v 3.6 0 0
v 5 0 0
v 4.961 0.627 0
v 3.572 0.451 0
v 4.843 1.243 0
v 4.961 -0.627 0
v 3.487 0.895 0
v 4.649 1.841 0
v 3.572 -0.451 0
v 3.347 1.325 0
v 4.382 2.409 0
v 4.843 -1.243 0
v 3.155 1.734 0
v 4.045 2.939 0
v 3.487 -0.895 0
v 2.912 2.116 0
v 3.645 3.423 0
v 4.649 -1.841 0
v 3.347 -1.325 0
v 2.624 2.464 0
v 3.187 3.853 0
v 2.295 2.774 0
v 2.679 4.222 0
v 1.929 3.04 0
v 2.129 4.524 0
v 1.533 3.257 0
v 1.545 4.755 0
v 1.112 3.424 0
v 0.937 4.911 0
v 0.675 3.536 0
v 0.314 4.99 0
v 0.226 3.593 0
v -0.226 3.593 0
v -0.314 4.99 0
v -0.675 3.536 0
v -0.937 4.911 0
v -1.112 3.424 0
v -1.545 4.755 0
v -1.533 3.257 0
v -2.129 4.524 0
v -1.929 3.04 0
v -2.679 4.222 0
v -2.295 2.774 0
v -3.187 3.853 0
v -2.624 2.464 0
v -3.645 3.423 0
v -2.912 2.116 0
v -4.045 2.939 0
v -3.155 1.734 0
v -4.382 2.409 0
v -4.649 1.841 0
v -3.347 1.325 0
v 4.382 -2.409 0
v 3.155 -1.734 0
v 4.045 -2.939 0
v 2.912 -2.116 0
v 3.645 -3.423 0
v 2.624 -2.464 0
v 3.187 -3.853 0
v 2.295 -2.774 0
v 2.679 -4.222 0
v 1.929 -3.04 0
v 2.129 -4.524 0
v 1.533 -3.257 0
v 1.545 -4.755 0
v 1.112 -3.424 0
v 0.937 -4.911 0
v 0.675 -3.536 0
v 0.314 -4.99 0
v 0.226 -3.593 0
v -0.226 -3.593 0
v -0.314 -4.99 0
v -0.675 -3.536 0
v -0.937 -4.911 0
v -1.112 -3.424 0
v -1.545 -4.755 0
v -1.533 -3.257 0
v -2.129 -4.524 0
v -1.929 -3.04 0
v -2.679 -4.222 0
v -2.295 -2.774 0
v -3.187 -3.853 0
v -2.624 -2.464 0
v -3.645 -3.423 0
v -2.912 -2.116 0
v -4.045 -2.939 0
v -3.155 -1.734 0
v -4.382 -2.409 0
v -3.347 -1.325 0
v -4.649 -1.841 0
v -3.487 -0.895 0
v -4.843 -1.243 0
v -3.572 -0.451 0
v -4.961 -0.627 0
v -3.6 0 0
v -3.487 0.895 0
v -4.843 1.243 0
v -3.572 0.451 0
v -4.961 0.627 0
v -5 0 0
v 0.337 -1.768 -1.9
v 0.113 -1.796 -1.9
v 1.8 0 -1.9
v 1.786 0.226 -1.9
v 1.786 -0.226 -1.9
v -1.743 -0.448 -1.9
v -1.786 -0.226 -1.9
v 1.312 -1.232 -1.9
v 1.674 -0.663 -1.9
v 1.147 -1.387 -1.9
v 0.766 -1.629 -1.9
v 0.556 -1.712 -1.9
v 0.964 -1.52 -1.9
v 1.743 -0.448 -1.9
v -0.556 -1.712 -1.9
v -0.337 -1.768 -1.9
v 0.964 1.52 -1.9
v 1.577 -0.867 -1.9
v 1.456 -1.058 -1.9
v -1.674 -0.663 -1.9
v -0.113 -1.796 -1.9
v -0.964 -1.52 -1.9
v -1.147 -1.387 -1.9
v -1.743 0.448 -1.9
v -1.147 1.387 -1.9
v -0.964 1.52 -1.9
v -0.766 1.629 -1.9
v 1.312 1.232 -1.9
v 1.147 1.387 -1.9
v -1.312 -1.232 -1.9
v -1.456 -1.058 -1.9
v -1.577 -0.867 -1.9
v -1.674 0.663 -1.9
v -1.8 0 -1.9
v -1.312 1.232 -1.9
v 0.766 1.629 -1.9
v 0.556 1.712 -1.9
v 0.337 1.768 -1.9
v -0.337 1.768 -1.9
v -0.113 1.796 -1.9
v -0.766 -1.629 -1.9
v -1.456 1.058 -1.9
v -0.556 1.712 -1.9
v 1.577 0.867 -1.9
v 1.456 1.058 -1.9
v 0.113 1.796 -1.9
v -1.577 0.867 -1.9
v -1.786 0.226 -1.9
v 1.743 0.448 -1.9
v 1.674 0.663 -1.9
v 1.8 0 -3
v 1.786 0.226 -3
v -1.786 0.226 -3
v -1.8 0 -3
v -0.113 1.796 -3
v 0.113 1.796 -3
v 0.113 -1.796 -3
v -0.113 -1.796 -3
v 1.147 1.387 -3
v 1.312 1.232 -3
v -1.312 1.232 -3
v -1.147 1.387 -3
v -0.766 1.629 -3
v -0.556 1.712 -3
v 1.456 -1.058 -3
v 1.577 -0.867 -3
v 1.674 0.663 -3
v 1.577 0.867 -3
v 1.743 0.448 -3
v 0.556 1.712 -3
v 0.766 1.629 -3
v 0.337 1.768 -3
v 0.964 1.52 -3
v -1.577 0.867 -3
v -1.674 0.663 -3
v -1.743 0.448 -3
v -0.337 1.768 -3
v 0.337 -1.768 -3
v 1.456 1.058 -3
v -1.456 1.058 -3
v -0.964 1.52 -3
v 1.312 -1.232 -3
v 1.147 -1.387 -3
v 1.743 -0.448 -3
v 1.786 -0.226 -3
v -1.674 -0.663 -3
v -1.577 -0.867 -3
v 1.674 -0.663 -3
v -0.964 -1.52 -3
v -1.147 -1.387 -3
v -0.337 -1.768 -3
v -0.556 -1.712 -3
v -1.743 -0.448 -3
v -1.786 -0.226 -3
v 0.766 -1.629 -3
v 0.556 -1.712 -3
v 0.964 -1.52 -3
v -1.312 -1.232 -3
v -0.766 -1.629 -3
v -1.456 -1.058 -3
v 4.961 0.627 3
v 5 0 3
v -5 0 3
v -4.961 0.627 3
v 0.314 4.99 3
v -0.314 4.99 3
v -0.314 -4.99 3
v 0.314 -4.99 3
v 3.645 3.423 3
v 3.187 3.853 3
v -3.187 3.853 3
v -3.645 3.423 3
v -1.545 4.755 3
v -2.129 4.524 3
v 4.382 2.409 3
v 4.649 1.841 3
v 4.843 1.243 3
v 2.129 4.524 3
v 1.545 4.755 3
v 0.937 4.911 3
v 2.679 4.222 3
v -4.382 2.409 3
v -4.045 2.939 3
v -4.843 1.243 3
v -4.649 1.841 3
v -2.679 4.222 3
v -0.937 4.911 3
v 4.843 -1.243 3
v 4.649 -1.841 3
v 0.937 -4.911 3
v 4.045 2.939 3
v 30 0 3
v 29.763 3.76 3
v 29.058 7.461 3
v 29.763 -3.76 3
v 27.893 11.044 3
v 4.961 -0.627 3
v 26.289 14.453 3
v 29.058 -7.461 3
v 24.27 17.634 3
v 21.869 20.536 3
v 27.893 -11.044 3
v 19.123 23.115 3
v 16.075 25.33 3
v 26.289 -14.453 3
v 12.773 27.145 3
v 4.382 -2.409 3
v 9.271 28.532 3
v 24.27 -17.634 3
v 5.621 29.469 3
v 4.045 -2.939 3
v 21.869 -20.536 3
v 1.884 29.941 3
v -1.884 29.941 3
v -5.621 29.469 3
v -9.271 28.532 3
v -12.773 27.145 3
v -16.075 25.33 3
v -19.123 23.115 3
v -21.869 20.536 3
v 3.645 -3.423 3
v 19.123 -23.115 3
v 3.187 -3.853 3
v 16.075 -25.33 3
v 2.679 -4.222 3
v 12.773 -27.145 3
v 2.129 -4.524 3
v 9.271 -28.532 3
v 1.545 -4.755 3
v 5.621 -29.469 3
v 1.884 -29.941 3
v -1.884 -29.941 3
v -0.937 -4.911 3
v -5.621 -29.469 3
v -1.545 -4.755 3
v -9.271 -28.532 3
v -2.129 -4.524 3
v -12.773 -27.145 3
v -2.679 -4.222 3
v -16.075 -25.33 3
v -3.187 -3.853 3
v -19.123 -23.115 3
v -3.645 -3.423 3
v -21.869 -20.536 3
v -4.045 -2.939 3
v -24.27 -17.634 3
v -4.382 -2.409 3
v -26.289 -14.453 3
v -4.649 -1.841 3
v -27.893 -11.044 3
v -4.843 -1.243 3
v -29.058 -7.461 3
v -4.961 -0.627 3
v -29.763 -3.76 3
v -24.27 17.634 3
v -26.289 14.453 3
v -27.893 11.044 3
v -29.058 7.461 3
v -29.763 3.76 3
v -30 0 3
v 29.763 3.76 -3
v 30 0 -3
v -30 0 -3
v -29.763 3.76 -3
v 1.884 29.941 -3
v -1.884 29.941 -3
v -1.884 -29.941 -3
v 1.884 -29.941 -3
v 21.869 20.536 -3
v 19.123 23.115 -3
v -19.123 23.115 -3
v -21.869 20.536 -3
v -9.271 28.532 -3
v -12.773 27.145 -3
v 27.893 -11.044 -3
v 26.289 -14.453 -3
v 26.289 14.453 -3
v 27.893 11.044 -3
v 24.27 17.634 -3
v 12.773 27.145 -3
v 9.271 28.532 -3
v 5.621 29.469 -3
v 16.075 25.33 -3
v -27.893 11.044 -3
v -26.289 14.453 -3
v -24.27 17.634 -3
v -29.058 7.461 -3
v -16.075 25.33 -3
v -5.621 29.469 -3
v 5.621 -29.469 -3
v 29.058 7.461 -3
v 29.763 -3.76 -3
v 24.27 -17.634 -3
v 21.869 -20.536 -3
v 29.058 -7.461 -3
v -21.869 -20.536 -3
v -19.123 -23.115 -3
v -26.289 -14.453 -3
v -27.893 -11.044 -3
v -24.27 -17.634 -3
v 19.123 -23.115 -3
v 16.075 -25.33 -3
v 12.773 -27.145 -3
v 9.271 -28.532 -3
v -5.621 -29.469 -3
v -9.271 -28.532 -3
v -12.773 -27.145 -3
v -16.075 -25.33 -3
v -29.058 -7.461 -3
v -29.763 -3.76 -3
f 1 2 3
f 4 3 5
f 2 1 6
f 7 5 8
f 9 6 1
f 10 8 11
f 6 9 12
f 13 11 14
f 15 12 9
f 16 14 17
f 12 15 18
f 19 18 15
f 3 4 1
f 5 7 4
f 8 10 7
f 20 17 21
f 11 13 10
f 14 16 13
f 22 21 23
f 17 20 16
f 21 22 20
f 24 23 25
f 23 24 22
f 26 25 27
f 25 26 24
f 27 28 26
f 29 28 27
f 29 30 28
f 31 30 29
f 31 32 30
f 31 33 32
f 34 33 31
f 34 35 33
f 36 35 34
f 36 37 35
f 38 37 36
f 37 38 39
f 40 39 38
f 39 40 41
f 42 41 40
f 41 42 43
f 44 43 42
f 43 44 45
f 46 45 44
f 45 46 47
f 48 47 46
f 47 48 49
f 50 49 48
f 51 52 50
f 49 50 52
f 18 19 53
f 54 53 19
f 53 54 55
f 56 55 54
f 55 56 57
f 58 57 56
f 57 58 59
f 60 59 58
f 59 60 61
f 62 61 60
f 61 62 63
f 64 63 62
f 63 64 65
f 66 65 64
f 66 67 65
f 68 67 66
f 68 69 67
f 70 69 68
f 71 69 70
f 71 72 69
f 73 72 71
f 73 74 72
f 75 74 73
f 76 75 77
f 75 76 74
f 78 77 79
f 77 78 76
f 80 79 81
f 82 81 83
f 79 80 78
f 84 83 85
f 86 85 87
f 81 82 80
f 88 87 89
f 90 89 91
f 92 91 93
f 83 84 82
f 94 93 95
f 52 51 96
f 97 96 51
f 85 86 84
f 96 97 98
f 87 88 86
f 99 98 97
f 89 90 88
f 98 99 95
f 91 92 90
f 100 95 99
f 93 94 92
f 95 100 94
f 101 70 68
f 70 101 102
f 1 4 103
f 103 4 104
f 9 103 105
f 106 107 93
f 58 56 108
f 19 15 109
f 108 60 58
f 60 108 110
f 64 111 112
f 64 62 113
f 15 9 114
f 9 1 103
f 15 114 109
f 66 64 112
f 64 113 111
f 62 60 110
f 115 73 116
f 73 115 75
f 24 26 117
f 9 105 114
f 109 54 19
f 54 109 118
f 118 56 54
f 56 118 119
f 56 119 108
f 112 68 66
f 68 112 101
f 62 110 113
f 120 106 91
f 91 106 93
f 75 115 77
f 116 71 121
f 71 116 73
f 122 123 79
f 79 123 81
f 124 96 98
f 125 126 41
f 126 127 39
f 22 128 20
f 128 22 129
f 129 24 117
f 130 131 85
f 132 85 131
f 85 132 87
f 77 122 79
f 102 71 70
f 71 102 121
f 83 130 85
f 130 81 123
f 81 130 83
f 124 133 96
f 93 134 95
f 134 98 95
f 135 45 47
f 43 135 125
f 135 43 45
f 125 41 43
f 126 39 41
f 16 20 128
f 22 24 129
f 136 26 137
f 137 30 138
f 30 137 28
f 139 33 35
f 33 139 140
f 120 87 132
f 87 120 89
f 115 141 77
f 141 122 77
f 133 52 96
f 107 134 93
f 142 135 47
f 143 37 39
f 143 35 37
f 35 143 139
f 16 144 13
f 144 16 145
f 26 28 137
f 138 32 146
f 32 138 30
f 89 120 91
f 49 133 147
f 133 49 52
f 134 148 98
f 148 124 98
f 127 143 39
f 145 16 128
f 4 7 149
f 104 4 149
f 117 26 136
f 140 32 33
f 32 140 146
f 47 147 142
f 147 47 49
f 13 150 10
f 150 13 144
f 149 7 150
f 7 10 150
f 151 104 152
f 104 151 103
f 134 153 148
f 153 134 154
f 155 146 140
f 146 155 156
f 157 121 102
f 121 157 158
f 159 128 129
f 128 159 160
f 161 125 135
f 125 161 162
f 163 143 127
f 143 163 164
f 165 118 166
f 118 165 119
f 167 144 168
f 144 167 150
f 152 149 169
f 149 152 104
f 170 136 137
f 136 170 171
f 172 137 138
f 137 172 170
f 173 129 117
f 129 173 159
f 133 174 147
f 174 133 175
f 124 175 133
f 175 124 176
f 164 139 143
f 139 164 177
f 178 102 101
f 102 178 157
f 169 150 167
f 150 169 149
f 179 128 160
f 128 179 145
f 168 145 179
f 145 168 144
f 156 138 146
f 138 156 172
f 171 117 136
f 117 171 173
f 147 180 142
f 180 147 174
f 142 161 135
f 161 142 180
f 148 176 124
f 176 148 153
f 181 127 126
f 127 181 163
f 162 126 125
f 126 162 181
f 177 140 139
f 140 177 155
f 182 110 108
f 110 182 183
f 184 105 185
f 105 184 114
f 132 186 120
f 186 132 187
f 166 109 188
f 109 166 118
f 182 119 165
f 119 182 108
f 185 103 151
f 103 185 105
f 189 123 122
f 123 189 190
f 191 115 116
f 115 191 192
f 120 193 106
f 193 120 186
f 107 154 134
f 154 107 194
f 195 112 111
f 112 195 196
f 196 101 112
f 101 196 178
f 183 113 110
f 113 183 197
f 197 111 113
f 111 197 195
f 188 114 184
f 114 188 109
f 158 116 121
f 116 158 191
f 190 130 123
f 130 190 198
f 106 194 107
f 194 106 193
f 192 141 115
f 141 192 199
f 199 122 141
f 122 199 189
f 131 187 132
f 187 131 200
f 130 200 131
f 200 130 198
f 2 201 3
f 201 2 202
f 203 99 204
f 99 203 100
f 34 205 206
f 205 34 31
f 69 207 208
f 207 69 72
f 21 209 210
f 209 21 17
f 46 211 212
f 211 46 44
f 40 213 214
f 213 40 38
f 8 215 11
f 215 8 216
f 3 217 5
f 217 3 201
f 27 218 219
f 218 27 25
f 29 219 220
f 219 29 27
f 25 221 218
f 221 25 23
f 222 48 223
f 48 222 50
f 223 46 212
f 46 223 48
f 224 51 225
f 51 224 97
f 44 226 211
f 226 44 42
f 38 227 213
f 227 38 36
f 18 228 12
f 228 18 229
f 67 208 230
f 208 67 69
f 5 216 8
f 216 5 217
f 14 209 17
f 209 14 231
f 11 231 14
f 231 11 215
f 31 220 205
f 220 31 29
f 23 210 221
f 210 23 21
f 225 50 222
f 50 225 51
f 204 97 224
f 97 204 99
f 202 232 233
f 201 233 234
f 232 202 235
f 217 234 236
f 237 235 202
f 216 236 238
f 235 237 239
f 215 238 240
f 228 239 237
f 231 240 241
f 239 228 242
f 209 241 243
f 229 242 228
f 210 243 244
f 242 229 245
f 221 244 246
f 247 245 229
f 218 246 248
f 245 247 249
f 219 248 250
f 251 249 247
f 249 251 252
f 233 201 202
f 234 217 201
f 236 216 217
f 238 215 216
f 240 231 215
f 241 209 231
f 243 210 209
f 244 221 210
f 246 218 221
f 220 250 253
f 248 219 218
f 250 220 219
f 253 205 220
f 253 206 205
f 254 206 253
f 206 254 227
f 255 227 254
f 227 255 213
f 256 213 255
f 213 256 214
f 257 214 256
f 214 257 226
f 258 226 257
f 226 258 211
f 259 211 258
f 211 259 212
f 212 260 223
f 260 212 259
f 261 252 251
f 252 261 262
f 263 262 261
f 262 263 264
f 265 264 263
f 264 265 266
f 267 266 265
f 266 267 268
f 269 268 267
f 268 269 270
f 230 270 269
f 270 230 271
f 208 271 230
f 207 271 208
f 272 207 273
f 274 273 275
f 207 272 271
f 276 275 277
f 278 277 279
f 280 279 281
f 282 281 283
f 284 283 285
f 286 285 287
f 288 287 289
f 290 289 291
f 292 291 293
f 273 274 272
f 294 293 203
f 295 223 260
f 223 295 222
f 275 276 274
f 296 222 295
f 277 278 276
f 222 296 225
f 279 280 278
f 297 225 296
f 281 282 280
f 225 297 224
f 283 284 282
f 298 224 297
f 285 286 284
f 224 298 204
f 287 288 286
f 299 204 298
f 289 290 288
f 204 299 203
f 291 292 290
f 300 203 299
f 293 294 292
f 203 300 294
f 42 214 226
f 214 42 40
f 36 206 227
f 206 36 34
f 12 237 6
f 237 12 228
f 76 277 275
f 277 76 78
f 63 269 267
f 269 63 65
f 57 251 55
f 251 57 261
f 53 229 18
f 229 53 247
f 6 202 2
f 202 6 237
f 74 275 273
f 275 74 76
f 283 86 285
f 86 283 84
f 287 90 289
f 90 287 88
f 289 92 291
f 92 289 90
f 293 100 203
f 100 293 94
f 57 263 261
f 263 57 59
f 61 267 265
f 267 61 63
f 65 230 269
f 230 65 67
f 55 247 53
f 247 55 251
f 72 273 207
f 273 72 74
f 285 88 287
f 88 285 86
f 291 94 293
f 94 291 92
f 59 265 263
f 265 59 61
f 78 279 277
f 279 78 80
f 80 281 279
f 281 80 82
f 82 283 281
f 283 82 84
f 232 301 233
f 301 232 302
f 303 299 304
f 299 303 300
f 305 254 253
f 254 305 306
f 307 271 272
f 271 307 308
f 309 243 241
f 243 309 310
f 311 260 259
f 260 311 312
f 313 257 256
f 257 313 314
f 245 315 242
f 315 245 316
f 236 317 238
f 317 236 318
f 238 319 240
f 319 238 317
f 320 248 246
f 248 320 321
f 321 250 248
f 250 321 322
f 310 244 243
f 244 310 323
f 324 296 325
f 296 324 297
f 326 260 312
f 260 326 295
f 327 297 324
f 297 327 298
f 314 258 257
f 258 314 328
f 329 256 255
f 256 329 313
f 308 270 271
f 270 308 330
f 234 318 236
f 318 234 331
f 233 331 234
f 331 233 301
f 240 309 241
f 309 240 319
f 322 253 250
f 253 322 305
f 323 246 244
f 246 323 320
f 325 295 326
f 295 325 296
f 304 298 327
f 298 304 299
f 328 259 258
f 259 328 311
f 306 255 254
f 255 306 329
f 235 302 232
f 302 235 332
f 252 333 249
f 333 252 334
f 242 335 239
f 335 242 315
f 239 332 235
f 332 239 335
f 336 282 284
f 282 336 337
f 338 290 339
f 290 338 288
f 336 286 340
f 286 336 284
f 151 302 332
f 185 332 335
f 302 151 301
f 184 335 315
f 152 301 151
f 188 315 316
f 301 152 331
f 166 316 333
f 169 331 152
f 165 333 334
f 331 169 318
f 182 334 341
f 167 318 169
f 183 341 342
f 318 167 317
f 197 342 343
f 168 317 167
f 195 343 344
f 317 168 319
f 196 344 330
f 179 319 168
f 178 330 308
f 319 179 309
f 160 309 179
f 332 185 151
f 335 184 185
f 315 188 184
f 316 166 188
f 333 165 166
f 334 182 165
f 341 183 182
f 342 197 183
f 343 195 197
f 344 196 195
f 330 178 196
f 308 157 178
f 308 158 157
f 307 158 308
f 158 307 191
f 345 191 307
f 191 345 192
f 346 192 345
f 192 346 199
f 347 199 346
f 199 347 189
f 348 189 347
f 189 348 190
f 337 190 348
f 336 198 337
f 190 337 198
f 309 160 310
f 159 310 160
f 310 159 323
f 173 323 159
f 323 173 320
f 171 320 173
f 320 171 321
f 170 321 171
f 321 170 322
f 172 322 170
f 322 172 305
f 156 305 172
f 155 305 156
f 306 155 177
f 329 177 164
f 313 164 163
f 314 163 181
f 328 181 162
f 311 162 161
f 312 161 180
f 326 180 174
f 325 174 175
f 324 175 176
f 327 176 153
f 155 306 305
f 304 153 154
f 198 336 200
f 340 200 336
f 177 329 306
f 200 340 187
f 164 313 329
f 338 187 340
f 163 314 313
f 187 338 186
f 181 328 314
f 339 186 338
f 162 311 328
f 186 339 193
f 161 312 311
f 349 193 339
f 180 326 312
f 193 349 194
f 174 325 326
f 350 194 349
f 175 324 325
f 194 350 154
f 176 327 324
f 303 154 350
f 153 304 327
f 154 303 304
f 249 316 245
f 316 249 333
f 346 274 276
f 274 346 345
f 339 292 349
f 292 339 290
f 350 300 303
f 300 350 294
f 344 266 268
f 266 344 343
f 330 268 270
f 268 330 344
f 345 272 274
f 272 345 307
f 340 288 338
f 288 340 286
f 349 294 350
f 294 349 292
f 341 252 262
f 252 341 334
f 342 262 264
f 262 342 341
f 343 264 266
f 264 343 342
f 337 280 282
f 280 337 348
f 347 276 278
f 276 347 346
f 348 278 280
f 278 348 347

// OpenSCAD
$fn = 50;

difference() {
	union() {
		translate(v = [0, 0, -3.0]) {
			cylinder(h = 6, r = 30.0);
		}
	}
	union() {
		translate(v = [0, 0, 0]) {
			rotate(a = [0, 0, 0]) {
				difference() {
					union() {
						translate(v = [0, 0, -6.0]) {
							cylinder(h = 6, r = 1.5);
						}
						translate(v = [0, 0, -1.9]) {
							cylinder(h = 1.9, r1 = 1.8, r2 = 3.6);
						}
						translate(v = [0, 0, -6.0]) {
							cylinder(h = 6, r = 1.8);
						}
						translate(v = [0, 0, -6.0]) {
							cylinder(h = 6, r = 1.5);
						}
					}
					union();
				}
			}
		}
		#cylinder(h = 3, r = 5.0);
	}
}
